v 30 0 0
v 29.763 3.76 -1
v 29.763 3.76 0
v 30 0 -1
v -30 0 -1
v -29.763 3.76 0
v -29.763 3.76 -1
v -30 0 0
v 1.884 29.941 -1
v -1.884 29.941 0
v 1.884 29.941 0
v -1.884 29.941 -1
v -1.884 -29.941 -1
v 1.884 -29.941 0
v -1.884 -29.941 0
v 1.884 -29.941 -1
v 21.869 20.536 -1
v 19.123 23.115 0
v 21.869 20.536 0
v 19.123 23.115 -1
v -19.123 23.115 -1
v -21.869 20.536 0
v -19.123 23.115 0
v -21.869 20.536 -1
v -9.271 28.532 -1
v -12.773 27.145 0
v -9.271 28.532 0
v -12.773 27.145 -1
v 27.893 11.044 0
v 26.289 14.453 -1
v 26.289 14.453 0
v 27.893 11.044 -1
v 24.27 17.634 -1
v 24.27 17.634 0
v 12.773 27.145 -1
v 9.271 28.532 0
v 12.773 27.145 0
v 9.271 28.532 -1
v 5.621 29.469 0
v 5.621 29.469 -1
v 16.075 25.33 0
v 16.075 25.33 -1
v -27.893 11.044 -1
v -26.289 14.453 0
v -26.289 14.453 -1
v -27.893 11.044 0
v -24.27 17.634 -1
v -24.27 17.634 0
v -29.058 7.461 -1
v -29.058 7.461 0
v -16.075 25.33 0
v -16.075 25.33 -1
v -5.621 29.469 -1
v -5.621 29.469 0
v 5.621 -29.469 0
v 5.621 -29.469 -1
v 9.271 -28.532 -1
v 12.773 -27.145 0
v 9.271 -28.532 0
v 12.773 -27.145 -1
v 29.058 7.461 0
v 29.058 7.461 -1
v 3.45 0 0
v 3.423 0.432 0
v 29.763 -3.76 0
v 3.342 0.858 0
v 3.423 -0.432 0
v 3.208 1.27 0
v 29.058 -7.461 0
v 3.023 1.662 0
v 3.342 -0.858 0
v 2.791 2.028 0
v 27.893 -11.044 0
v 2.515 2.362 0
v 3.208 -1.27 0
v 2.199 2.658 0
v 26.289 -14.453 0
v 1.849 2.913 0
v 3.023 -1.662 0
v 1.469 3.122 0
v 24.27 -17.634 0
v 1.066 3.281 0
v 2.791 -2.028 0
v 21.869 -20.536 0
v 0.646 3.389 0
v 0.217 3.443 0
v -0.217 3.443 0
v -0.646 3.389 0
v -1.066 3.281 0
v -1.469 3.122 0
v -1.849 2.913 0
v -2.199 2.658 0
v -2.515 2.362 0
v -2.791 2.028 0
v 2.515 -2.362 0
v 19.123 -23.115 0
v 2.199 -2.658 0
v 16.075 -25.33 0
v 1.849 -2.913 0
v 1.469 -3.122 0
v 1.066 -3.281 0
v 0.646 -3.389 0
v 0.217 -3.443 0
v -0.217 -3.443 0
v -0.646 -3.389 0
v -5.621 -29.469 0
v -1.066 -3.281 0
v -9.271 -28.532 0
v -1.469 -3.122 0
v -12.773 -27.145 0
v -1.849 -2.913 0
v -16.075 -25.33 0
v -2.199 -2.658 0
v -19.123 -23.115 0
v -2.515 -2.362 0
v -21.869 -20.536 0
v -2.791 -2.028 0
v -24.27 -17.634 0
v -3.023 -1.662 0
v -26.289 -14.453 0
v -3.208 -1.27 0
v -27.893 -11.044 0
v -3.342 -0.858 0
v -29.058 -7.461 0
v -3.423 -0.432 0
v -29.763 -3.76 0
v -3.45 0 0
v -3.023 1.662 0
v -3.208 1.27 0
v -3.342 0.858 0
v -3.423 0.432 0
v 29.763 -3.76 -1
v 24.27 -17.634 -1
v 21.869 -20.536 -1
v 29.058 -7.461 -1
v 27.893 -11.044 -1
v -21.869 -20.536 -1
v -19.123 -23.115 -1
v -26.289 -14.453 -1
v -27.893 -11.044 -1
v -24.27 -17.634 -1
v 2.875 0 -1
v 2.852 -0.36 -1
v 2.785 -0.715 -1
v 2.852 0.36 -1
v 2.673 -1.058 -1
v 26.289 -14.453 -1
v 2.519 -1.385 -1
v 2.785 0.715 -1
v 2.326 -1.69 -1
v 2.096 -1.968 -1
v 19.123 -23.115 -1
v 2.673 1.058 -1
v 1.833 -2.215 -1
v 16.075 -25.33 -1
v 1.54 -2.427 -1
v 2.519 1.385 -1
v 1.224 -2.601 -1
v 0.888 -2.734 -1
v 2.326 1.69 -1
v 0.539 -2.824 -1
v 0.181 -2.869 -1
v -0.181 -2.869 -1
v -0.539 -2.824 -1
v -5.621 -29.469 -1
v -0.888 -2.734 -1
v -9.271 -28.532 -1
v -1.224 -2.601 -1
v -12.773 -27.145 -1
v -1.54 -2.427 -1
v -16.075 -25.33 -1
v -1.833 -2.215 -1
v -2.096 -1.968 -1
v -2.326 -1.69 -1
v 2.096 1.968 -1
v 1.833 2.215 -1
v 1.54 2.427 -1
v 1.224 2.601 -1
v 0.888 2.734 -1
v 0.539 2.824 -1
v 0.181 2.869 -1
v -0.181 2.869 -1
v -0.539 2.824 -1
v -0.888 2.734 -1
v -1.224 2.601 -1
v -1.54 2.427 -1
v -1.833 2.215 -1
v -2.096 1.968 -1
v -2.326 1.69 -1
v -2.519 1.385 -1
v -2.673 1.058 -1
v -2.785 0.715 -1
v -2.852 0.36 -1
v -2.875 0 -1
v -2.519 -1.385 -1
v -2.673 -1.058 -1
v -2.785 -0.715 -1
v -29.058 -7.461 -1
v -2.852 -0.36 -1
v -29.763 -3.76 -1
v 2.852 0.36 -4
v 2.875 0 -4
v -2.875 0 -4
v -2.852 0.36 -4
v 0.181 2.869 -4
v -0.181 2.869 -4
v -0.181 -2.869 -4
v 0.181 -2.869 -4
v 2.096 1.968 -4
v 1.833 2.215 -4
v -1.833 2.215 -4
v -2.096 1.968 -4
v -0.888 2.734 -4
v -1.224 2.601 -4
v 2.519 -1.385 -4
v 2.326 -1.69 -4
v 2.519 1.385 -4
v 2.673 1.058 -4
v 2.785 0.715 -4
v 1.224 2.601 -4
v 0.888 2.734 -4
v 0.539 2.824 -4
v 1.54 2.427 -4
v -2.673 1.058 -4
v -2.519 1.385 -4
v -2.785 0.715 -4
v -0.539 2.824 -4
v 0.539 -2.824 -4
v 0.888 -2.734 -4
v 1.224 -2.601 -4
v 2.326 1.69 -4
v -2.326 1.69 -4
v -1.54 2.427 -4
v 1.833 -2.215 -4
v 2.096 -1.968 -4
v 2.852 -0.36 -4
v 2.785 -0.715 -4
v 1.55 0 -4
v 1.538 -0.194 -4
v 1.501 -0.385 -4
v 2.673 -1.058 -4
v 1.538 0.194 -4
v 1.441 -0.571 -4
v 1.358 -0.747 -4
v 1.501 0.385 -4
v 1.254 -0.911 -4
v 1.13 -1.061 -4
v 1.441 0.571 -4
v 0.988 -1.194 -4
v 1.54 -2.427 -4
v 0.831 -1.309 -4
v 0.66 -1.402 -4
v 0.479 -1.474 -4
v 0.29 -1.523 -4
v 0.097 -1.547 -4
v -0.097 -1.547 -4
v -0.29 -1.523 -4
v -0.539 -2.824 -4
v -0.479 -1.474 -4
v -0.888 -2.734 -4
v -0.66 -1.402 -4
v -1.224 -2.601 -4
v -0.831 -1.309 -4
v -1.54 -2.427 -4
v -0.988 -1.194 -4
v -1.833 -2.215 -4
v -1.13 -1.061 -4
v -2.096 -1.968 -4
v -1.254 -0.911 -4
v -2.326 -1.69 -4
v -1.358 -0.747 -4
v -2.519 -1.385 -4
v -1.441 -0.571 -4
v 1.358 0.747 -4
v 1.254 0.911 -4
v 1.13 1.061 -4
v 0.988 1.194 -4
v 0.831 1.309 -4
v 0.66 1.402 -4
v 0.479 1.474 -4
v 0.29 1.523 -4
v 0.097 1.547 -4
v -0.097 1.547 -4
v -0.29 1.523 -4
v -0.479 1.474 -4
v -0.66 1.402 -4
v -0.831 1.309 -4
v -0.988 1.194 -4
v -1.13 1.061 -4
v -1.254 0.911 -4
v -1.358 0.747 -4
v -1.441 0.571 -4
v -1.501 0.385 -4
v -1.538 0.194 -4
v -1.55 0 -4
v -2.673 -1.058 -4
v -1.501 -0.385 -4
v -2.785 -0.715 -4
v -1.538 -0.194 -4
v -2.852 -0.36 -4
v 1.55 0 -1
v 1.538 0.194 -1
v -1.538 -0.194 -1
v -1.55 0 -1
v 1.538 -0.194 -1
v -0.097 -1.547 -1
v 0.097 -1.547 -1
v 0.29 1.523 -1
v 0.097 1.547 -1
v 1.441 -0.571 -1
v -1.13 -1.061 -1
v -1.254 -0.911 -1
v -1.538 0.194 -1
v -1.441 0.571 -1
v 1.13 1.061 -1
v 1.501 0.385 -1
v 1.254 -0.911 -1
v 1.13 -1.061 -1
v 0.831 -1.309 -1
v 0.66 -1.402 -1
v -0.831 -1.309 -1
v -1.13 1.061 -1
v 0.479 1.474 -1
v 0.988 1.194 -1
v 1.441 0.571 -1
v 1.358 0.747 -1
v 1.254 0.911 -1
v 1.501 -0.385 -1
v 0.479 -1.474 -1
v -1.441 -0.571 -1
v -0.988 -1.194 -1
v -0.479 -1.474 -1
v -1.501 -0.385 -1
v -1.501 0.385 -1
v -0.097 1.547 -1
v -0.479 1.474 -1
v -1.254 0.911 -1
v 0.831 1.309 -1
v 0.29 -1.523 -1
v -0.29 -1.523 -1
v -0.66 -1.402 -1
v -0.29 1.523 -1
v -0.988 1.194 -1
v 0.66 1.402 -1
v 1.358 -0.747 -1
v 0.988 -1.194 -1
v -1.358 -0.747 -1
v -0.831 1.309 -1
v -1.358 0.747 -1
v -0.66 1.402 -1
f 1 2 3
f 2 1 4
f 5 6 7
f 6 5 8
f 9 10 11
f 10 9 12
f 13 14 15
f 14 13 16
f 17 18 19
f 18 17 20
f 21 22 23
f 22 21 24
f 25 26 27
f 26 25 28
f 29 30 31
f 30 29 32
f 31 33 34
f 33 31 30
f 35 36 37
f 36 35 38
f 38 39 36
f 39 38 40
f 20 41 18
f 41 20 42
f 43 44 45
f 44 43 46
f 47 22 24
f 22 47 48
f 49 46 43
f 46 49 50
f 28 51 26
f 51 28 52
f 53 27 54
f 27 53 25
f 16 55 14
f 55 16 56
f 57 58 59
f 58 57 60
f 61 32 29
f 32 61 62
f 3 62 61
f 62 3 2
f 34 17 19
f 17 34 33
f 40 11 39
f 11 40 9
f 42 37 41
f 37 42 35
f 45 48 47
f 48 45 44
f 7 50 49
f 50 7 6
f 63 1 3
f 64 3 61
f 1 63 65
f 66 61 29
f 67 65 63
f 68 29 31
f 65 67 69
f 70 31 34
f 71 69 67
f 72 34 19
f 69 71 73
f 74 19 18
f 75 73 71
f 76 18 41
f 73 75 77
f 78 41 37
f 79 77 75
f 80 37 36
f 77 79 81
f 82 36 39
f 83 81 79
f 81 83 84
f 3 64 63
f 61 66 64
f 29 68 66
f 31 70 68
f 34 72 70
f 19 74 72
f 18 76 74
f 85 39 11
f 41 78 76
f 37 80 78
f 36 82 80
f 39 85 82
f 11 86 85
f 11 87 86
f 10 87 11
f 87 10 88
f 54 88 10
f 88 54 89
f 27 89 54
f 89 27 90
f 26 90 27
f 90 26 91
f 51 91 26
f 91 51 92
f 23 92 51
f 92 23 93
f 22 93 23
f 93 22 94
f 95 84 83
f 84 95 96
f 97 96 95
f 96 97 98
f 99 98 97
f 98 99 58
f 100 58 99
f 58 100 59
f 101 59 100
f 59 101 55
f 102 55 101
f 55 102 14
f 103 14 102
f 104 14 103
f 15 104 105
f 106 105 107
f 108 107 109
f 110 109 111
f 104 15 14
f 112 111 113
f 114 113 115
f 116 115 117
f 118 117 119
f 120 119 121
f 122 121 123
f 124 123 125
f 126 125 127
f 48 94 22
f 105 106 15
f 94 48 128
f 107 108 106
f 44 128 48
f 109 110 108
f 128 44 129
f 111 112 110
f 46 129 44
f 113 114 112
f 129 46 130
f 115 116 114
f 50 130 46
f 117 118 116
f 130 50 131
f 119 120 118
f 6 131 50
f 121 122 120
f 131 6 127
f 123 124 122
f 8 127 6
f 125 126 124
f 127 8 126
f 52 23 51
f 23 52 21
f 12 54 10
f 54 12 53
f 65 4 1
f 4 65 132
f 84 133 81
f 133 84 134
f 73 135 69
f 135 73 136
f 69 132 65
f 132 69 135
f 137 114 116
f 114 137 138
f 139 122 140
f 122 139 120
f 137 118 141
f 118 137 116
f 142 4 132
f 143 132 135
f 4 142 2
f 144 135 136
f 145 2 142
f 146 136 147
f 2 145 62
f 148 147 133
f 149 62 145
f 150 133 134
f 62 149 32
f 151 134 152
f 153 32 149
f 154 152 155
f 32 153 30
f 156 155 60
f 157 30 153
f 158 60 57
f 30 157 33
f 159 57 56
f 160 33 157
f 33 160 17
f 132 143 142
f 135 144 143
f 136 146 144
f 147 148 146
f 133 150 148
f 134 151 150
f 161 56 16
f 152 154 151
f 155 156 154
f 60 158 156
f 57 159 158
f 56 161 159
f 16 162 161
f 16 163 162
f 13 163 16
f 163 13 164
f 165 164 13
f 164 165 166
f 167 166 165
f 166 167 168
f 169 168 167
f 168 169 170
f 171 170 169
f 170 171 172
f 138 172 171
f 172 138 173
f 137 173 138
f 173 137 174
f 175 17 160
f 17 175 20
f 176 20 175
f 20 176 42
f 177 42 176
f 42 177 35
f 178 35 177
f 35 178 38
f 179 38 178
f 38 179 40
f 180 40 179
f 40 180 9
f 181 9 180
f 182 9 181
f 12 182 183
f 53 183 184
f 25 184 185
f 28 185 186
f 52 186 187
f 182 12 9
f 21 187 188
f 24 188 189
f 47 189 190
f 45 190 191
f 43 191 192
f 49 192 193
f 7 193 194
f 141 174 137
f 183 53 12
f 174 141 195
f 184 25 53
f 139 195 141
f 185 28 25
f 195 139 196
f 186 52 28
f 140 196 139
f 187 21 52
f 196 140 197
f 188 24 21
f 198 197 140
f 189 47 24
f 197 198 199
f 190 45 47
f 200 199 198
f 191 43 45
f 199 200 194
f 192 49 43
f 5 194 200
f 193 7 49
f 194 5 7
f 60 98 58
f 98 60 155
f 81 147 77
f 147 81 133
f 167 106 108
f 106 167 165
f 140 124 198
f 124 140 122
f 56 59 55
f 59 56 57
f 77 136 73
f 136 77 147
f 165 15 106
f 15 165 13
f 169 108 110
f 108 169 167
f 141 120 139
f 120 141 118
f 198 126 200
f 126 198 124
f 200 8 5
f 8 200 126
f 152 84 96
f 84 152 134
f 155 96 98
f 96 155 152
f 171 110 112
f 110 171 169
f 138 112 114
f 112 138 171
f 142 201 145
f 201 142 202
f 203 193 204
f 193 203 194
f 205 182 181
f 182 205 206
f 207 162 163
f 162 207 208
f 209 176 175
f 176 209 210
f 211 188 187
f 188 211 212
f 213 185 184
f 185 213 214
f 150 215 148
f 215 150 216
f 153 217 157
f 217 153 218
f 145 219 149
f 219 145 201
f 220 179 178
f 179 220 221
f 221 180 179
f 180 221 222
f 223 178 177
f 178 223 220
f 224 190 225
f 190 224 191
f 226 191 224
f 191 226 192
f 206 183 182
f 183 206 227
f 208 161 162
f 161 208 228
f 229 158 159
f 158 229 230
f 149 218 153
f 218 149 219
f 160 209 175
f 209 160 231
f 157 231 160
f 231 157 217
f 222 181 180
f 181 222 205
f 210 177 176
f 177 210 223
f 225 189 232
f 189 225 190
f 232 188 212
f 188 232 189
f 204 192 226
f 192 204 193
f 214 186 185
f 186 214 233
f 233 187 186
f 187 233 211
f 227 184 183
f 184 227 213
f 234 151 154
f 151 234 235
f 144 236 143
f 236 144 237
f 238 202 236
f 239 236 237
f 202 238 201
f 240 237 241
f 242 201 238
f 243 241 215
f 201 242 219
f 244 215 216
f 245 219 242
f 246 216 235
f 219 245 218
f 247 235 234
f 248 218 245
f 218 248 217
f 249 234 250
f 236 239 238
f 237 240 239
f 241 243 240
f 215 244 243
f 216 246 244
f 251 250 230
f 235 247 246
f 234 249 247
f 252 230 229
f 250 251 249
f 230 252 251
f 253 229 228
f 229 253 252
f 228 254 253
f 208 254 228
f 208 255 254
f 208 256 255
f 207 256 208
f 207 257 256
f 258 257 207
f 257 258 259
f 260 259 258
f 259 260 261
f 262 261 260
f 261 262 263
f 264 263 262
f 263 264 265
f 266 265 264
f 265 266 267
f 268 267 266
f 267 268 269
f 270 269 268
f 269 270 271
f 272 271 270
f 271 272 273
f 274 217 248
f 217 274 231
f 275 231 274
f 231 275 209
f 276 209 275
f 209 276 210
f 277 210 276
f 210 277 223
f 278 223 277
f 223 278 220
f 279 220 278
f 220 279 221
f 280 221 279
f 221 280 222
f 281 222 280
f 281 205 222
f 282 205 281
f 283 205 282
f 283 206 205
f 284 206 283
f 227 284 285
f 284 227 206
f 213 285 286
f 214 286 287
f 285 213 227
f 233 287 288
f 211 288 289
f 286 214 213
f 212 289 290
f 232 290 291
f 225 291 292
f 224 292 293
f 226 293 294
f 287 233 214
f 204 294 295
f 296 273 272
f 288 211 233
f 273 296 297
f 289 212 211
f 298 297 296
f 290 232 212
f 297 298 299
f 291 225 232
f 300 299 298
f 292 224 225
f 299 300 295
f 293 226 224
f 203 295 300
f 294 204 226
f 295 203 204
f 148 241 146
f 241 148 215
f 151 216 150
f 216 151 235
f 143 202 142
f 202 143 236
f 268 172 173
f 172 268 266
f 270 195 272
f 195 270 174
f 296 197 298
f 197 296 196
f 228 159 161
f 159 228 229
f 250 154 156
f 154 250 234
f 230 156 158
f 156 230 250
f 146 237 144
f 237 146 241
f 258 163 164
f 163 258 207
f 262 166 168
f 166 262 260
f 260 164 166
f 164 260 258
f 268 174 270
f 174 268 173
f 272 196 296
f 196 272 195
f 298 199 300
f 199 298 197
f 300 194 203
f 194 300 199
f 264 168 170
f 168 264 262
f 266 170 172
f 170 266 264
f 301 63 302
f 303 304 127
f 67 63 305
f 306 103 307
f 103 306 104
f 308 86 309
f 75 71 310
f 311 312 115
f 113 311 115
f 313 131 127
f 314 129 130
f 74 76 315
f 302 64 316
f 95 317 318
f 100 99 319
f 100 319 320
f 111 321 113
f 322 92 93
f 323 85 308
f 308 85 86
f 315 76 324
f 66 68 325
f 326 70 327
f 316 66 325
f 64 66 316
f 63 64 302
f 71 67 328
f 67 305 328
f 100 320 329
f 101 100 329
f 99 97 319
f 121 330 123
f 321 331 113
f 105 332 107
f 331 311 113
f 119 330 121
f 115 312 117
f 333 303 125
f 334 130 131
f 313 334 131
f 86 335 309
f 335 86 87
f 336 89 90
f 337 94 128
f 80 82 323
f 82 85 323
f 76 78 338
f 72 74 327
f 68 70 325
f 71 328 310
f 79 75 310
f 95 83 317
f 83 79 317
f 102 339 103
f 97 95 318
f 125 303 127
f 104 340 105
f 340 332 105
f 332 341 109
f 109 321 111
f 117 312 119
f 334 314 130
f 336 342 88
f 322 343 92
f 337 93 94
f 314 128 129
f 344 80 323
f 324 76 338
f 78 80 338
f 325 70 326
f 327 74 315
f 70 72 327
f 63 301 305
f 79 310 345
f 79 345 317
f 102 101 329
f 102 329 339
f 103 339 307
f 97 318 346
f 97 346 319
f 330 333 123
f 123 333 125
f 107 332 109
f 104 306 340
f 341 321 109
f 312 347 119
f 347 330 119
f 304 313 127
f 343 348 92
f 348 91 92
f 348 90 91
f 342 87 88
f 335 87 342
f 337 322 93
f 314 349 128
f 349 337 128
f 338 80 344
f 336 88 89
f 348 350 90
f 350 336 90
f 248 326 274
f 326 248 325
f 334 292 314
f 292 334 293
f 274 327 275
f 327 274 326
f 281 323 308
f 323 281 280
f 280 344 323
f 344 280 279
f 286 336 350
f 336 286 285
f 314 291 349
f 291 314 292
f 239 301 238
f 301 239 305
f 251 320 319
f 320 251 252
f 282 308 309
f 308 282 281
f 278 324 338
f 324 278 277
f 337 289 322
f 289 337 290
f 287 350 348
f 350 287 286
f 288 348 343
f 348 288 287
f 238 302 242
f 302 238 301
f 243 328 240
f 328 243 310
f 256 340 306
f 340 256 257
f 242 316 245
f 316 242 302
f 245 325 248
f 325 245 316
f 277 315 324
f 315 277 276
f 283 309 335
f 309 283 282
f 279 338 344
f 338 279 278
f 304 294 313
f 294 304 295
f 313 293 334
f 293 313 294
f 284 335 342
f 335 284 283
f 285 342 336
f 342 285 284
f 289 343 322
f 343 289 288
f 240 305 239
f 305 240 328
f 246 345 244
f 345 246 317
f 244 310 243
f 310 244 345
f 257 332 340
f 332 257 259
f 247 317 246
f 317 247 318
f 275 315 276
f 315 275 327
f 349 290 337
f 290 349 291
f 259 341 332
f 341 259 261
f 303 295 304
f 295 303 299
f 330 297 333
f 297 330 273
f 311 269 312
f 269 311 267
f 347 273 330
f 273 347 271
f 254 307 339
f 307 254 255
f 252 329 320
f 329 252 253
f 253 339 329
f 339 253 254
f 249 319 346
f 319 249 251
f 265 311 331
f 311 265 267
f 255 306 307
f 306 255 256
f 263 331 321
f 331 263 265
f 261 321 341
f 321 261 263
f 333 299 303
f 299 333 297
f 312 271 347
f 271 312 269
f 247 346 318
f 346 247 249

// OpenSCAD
$fn = 50;


difference() {
	union() {
		translate(v = [0, 0, -1.0000000000]) {
			cylinder(h = 1.0000000000, r = 30.0000000000);
		}
		translate(v = [0, 0, -4.0000000000]) {
			cylinder(h = 4.0000000000, r = 2.8750000000);
		}
	}
	union() {
		translate(v = [0, 0, 0]) {
			rotate(a = [0, 0, 0]) {
				difference() {
					union() {
						translate(v = [0, 0, -4.0000000000]) {
							cylinder(h = 4.0000000000, r = 1.2500000000);
						}
						translate(v = [0, 0, -1.0000000000]) {
							cylinder(h = 1.0000000000, r1 = 1.5500000000, r2 = 3.4500000000);
						}
						translate(v = [0, 0, -4.0000000000]) {
							cylinder(h = 4.0000000000, r = 1.5500000000);
						}
						translate(v = [0, 0, -4.0000000000]) {
							cylinder(h = 4.0000000000, r = 1.2500000000);
						}
					}
					union();
				}
			}
		}
	}
}
